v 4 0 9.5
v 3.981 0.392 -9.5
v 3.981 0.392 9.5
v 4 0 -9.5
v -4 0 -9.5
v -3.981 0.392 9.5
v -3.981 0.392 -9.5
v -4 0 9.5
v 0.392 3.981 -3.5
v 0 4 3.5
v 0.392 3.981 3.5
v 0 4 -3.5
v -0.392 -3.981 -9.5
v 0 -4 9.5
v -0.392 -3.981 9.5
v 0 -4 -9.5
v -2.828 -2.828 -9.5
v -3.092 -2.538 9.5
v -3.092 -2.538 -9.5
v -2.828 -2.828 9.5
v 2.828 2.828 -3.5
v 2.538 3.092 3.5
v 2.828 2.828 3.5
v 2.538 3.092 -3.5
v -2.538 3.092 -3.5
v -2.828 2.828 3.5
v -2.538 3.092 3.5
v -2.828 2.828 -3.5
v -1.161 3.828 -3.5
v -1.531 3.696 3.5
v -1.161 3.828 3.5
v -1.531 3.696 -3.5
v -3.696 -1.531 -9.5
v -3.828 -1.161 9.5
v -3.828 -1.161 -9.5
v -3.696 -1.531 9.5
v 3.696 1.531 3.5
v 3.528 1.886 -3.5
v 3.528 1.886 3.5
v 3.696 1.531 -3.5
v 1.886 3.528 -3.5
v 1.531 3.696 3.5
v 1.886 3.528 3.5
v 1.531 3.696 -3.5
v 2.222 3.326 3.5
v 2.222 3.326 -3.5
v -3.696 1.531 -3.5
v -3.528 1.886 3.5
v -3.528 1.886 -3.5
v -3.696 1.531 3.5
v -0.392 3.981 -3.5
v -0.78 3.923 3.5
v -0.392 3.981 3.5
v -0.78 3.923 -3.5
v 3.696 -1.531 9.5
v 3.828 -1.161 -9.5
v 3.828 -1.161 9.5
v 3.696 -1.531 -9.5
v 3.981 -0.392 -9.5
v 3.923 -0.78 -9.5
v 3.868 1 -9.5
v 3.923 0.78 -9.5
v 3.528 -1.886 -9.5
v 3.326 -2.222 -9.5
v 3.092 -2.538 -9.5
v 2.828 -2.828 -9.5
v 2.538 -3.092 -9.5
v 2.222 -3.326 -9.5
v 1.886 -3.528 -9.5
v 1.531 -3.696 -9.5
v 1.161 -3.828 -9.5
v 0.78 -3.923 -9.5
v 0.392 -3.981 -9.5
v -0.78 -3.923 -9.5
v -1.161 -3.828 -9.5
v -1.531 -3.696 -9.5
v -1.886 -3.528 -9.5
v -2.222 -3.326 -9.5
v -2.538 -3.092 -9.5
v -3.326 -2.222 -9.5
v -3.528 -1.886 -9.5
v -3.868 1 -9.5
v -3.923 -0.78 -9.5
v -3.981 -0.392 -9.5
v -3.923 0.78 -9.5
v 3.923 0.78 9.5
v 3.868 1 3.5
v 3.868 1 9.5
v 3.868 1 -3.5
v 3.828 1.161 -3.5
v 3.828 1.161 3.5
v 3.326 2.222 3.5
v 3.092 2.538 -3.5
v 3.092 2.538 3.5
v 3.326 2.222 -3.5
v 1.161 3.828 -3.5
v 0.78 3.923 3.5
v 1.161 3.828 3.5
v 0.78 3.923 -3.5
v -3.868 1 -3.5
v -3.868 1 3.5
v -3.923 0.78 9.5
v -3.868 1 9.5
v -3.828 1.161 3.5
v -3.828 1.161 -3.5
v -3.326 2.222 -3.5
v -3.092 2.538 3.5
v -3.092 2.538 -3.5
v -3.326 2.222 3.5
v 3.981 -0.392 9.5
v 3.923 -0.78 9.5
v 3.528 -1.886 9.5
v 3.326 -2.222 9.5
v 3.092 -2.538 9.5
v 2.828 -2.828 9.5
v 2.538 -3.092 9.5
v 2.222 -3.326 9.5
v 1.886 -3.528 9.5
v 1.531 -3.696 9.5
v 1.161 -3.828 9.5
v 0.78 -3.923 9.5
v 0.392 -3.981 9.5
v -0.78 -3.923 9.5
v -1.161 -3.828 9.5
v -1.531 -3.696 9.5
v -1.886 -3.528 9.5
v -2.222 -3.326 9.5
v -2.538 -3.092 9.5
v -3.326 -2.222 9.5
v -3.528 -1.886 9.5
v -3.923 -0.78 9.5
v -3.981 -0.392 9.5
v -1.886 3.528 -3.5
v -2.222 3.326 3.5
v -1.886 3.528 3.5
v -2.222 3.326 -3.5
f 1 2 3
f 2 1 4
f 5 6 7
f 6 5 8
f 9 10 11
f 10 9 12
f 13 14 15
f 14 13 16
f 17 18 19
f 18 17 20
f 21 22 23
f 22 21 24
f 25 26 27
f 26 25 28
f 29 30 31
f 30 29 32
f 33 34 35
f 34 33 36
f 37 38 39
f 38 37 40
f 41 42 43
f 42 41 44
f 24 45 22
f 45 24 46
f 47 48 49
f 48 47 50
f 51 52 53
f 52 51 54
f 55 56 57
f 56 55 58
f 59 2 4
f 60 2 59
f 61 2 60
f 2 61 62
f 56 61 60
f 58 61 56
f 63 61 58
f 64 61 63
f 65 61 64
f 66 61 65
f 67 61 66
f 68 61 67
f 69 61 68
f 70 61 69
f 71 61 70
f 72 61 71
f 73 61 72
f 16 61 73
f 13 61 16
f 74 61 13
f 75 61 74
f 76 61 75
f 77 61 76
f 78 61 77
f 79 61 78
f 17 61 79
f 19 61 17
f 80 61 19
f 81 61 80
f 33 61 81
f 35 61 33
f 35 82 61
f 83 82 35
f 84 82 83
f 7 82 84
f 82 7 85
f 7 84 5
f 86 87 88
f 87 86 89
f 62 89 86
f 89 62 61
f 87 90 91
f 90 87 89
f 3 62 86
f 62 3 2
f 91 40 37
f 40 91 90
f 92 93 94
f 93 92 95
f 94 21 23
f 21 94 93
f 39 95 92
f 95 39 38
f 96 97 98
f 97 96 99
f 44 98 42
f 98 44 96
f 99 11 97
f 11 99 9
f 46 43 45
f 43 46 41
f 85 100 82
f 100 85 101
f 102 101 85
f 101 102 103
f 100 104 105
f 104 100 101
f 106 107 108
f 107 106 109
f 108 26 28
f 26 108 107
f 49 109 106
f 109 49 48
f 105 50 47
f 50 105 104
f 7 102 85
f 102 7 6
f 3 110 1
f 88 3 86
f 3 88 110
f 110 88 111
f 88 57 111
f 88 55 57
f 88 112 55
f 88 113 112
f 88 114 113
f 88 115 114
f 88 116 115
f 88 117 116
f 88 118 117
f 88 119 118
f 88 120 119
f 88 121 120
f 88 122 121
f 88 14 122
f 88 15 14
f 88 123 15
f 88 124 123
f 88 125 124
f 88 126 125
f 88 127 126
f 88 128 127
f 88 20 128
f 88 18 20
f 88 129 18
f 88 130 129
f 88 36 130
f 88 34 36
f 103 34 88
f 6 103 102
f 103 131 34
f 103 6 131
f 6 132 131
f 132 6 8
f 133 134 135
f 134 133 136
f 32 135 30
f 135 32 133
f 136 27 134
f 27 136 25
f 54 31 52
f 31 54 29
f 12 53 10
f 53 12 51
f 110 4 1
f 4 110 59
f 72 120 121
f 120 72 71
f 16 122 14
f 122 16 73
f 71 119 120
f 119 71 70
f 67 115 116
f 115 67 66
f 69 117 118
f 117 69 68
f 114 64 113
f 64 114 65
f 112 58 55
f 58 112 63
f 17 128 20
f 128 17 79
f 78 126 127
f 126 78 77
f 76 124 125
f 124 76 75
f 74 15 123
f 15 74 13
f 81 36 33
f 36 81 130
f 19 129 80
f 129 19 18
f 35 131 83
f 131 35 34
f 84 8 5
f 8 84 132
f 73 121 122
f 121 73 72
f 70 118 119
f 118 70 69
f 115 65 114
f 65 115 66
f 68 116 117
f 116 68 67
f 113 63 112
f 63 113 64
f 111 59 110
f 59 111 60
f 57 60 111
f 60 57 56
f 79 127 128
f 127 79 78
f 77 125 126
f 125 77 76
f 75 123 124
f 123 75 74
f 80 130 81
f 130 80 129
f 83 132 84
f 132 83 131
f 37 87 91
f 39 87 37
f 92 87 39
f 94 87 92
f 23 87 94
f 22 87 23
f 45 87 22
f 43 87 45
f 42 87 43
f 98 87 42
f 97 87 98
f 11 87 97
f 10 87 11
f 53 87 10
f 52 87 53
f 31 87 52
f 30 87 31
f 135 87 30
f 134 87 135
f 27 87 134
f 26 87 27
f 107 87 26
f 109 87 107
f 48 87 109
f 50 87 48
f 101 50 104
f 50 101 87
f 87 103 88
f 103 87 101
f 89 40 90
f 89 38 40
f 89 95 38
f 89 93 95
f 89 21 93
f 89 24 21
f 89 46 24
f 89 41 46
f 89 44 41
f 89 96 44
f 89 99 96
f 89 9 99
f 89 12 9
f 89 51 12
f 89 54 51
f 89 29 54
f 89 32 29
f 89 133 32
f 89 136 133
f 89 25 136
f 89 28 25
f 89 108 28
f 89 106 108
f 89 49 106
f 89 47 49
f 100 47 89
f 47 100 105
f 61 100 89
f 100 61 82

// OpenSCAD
difference(){
cylinder(r=8/2,h=19,center=true,$fn=64);
translate([-15/2,1,7/2])cube(15);
translate([-15/2,1,-7/2-15])cube(15);
}
